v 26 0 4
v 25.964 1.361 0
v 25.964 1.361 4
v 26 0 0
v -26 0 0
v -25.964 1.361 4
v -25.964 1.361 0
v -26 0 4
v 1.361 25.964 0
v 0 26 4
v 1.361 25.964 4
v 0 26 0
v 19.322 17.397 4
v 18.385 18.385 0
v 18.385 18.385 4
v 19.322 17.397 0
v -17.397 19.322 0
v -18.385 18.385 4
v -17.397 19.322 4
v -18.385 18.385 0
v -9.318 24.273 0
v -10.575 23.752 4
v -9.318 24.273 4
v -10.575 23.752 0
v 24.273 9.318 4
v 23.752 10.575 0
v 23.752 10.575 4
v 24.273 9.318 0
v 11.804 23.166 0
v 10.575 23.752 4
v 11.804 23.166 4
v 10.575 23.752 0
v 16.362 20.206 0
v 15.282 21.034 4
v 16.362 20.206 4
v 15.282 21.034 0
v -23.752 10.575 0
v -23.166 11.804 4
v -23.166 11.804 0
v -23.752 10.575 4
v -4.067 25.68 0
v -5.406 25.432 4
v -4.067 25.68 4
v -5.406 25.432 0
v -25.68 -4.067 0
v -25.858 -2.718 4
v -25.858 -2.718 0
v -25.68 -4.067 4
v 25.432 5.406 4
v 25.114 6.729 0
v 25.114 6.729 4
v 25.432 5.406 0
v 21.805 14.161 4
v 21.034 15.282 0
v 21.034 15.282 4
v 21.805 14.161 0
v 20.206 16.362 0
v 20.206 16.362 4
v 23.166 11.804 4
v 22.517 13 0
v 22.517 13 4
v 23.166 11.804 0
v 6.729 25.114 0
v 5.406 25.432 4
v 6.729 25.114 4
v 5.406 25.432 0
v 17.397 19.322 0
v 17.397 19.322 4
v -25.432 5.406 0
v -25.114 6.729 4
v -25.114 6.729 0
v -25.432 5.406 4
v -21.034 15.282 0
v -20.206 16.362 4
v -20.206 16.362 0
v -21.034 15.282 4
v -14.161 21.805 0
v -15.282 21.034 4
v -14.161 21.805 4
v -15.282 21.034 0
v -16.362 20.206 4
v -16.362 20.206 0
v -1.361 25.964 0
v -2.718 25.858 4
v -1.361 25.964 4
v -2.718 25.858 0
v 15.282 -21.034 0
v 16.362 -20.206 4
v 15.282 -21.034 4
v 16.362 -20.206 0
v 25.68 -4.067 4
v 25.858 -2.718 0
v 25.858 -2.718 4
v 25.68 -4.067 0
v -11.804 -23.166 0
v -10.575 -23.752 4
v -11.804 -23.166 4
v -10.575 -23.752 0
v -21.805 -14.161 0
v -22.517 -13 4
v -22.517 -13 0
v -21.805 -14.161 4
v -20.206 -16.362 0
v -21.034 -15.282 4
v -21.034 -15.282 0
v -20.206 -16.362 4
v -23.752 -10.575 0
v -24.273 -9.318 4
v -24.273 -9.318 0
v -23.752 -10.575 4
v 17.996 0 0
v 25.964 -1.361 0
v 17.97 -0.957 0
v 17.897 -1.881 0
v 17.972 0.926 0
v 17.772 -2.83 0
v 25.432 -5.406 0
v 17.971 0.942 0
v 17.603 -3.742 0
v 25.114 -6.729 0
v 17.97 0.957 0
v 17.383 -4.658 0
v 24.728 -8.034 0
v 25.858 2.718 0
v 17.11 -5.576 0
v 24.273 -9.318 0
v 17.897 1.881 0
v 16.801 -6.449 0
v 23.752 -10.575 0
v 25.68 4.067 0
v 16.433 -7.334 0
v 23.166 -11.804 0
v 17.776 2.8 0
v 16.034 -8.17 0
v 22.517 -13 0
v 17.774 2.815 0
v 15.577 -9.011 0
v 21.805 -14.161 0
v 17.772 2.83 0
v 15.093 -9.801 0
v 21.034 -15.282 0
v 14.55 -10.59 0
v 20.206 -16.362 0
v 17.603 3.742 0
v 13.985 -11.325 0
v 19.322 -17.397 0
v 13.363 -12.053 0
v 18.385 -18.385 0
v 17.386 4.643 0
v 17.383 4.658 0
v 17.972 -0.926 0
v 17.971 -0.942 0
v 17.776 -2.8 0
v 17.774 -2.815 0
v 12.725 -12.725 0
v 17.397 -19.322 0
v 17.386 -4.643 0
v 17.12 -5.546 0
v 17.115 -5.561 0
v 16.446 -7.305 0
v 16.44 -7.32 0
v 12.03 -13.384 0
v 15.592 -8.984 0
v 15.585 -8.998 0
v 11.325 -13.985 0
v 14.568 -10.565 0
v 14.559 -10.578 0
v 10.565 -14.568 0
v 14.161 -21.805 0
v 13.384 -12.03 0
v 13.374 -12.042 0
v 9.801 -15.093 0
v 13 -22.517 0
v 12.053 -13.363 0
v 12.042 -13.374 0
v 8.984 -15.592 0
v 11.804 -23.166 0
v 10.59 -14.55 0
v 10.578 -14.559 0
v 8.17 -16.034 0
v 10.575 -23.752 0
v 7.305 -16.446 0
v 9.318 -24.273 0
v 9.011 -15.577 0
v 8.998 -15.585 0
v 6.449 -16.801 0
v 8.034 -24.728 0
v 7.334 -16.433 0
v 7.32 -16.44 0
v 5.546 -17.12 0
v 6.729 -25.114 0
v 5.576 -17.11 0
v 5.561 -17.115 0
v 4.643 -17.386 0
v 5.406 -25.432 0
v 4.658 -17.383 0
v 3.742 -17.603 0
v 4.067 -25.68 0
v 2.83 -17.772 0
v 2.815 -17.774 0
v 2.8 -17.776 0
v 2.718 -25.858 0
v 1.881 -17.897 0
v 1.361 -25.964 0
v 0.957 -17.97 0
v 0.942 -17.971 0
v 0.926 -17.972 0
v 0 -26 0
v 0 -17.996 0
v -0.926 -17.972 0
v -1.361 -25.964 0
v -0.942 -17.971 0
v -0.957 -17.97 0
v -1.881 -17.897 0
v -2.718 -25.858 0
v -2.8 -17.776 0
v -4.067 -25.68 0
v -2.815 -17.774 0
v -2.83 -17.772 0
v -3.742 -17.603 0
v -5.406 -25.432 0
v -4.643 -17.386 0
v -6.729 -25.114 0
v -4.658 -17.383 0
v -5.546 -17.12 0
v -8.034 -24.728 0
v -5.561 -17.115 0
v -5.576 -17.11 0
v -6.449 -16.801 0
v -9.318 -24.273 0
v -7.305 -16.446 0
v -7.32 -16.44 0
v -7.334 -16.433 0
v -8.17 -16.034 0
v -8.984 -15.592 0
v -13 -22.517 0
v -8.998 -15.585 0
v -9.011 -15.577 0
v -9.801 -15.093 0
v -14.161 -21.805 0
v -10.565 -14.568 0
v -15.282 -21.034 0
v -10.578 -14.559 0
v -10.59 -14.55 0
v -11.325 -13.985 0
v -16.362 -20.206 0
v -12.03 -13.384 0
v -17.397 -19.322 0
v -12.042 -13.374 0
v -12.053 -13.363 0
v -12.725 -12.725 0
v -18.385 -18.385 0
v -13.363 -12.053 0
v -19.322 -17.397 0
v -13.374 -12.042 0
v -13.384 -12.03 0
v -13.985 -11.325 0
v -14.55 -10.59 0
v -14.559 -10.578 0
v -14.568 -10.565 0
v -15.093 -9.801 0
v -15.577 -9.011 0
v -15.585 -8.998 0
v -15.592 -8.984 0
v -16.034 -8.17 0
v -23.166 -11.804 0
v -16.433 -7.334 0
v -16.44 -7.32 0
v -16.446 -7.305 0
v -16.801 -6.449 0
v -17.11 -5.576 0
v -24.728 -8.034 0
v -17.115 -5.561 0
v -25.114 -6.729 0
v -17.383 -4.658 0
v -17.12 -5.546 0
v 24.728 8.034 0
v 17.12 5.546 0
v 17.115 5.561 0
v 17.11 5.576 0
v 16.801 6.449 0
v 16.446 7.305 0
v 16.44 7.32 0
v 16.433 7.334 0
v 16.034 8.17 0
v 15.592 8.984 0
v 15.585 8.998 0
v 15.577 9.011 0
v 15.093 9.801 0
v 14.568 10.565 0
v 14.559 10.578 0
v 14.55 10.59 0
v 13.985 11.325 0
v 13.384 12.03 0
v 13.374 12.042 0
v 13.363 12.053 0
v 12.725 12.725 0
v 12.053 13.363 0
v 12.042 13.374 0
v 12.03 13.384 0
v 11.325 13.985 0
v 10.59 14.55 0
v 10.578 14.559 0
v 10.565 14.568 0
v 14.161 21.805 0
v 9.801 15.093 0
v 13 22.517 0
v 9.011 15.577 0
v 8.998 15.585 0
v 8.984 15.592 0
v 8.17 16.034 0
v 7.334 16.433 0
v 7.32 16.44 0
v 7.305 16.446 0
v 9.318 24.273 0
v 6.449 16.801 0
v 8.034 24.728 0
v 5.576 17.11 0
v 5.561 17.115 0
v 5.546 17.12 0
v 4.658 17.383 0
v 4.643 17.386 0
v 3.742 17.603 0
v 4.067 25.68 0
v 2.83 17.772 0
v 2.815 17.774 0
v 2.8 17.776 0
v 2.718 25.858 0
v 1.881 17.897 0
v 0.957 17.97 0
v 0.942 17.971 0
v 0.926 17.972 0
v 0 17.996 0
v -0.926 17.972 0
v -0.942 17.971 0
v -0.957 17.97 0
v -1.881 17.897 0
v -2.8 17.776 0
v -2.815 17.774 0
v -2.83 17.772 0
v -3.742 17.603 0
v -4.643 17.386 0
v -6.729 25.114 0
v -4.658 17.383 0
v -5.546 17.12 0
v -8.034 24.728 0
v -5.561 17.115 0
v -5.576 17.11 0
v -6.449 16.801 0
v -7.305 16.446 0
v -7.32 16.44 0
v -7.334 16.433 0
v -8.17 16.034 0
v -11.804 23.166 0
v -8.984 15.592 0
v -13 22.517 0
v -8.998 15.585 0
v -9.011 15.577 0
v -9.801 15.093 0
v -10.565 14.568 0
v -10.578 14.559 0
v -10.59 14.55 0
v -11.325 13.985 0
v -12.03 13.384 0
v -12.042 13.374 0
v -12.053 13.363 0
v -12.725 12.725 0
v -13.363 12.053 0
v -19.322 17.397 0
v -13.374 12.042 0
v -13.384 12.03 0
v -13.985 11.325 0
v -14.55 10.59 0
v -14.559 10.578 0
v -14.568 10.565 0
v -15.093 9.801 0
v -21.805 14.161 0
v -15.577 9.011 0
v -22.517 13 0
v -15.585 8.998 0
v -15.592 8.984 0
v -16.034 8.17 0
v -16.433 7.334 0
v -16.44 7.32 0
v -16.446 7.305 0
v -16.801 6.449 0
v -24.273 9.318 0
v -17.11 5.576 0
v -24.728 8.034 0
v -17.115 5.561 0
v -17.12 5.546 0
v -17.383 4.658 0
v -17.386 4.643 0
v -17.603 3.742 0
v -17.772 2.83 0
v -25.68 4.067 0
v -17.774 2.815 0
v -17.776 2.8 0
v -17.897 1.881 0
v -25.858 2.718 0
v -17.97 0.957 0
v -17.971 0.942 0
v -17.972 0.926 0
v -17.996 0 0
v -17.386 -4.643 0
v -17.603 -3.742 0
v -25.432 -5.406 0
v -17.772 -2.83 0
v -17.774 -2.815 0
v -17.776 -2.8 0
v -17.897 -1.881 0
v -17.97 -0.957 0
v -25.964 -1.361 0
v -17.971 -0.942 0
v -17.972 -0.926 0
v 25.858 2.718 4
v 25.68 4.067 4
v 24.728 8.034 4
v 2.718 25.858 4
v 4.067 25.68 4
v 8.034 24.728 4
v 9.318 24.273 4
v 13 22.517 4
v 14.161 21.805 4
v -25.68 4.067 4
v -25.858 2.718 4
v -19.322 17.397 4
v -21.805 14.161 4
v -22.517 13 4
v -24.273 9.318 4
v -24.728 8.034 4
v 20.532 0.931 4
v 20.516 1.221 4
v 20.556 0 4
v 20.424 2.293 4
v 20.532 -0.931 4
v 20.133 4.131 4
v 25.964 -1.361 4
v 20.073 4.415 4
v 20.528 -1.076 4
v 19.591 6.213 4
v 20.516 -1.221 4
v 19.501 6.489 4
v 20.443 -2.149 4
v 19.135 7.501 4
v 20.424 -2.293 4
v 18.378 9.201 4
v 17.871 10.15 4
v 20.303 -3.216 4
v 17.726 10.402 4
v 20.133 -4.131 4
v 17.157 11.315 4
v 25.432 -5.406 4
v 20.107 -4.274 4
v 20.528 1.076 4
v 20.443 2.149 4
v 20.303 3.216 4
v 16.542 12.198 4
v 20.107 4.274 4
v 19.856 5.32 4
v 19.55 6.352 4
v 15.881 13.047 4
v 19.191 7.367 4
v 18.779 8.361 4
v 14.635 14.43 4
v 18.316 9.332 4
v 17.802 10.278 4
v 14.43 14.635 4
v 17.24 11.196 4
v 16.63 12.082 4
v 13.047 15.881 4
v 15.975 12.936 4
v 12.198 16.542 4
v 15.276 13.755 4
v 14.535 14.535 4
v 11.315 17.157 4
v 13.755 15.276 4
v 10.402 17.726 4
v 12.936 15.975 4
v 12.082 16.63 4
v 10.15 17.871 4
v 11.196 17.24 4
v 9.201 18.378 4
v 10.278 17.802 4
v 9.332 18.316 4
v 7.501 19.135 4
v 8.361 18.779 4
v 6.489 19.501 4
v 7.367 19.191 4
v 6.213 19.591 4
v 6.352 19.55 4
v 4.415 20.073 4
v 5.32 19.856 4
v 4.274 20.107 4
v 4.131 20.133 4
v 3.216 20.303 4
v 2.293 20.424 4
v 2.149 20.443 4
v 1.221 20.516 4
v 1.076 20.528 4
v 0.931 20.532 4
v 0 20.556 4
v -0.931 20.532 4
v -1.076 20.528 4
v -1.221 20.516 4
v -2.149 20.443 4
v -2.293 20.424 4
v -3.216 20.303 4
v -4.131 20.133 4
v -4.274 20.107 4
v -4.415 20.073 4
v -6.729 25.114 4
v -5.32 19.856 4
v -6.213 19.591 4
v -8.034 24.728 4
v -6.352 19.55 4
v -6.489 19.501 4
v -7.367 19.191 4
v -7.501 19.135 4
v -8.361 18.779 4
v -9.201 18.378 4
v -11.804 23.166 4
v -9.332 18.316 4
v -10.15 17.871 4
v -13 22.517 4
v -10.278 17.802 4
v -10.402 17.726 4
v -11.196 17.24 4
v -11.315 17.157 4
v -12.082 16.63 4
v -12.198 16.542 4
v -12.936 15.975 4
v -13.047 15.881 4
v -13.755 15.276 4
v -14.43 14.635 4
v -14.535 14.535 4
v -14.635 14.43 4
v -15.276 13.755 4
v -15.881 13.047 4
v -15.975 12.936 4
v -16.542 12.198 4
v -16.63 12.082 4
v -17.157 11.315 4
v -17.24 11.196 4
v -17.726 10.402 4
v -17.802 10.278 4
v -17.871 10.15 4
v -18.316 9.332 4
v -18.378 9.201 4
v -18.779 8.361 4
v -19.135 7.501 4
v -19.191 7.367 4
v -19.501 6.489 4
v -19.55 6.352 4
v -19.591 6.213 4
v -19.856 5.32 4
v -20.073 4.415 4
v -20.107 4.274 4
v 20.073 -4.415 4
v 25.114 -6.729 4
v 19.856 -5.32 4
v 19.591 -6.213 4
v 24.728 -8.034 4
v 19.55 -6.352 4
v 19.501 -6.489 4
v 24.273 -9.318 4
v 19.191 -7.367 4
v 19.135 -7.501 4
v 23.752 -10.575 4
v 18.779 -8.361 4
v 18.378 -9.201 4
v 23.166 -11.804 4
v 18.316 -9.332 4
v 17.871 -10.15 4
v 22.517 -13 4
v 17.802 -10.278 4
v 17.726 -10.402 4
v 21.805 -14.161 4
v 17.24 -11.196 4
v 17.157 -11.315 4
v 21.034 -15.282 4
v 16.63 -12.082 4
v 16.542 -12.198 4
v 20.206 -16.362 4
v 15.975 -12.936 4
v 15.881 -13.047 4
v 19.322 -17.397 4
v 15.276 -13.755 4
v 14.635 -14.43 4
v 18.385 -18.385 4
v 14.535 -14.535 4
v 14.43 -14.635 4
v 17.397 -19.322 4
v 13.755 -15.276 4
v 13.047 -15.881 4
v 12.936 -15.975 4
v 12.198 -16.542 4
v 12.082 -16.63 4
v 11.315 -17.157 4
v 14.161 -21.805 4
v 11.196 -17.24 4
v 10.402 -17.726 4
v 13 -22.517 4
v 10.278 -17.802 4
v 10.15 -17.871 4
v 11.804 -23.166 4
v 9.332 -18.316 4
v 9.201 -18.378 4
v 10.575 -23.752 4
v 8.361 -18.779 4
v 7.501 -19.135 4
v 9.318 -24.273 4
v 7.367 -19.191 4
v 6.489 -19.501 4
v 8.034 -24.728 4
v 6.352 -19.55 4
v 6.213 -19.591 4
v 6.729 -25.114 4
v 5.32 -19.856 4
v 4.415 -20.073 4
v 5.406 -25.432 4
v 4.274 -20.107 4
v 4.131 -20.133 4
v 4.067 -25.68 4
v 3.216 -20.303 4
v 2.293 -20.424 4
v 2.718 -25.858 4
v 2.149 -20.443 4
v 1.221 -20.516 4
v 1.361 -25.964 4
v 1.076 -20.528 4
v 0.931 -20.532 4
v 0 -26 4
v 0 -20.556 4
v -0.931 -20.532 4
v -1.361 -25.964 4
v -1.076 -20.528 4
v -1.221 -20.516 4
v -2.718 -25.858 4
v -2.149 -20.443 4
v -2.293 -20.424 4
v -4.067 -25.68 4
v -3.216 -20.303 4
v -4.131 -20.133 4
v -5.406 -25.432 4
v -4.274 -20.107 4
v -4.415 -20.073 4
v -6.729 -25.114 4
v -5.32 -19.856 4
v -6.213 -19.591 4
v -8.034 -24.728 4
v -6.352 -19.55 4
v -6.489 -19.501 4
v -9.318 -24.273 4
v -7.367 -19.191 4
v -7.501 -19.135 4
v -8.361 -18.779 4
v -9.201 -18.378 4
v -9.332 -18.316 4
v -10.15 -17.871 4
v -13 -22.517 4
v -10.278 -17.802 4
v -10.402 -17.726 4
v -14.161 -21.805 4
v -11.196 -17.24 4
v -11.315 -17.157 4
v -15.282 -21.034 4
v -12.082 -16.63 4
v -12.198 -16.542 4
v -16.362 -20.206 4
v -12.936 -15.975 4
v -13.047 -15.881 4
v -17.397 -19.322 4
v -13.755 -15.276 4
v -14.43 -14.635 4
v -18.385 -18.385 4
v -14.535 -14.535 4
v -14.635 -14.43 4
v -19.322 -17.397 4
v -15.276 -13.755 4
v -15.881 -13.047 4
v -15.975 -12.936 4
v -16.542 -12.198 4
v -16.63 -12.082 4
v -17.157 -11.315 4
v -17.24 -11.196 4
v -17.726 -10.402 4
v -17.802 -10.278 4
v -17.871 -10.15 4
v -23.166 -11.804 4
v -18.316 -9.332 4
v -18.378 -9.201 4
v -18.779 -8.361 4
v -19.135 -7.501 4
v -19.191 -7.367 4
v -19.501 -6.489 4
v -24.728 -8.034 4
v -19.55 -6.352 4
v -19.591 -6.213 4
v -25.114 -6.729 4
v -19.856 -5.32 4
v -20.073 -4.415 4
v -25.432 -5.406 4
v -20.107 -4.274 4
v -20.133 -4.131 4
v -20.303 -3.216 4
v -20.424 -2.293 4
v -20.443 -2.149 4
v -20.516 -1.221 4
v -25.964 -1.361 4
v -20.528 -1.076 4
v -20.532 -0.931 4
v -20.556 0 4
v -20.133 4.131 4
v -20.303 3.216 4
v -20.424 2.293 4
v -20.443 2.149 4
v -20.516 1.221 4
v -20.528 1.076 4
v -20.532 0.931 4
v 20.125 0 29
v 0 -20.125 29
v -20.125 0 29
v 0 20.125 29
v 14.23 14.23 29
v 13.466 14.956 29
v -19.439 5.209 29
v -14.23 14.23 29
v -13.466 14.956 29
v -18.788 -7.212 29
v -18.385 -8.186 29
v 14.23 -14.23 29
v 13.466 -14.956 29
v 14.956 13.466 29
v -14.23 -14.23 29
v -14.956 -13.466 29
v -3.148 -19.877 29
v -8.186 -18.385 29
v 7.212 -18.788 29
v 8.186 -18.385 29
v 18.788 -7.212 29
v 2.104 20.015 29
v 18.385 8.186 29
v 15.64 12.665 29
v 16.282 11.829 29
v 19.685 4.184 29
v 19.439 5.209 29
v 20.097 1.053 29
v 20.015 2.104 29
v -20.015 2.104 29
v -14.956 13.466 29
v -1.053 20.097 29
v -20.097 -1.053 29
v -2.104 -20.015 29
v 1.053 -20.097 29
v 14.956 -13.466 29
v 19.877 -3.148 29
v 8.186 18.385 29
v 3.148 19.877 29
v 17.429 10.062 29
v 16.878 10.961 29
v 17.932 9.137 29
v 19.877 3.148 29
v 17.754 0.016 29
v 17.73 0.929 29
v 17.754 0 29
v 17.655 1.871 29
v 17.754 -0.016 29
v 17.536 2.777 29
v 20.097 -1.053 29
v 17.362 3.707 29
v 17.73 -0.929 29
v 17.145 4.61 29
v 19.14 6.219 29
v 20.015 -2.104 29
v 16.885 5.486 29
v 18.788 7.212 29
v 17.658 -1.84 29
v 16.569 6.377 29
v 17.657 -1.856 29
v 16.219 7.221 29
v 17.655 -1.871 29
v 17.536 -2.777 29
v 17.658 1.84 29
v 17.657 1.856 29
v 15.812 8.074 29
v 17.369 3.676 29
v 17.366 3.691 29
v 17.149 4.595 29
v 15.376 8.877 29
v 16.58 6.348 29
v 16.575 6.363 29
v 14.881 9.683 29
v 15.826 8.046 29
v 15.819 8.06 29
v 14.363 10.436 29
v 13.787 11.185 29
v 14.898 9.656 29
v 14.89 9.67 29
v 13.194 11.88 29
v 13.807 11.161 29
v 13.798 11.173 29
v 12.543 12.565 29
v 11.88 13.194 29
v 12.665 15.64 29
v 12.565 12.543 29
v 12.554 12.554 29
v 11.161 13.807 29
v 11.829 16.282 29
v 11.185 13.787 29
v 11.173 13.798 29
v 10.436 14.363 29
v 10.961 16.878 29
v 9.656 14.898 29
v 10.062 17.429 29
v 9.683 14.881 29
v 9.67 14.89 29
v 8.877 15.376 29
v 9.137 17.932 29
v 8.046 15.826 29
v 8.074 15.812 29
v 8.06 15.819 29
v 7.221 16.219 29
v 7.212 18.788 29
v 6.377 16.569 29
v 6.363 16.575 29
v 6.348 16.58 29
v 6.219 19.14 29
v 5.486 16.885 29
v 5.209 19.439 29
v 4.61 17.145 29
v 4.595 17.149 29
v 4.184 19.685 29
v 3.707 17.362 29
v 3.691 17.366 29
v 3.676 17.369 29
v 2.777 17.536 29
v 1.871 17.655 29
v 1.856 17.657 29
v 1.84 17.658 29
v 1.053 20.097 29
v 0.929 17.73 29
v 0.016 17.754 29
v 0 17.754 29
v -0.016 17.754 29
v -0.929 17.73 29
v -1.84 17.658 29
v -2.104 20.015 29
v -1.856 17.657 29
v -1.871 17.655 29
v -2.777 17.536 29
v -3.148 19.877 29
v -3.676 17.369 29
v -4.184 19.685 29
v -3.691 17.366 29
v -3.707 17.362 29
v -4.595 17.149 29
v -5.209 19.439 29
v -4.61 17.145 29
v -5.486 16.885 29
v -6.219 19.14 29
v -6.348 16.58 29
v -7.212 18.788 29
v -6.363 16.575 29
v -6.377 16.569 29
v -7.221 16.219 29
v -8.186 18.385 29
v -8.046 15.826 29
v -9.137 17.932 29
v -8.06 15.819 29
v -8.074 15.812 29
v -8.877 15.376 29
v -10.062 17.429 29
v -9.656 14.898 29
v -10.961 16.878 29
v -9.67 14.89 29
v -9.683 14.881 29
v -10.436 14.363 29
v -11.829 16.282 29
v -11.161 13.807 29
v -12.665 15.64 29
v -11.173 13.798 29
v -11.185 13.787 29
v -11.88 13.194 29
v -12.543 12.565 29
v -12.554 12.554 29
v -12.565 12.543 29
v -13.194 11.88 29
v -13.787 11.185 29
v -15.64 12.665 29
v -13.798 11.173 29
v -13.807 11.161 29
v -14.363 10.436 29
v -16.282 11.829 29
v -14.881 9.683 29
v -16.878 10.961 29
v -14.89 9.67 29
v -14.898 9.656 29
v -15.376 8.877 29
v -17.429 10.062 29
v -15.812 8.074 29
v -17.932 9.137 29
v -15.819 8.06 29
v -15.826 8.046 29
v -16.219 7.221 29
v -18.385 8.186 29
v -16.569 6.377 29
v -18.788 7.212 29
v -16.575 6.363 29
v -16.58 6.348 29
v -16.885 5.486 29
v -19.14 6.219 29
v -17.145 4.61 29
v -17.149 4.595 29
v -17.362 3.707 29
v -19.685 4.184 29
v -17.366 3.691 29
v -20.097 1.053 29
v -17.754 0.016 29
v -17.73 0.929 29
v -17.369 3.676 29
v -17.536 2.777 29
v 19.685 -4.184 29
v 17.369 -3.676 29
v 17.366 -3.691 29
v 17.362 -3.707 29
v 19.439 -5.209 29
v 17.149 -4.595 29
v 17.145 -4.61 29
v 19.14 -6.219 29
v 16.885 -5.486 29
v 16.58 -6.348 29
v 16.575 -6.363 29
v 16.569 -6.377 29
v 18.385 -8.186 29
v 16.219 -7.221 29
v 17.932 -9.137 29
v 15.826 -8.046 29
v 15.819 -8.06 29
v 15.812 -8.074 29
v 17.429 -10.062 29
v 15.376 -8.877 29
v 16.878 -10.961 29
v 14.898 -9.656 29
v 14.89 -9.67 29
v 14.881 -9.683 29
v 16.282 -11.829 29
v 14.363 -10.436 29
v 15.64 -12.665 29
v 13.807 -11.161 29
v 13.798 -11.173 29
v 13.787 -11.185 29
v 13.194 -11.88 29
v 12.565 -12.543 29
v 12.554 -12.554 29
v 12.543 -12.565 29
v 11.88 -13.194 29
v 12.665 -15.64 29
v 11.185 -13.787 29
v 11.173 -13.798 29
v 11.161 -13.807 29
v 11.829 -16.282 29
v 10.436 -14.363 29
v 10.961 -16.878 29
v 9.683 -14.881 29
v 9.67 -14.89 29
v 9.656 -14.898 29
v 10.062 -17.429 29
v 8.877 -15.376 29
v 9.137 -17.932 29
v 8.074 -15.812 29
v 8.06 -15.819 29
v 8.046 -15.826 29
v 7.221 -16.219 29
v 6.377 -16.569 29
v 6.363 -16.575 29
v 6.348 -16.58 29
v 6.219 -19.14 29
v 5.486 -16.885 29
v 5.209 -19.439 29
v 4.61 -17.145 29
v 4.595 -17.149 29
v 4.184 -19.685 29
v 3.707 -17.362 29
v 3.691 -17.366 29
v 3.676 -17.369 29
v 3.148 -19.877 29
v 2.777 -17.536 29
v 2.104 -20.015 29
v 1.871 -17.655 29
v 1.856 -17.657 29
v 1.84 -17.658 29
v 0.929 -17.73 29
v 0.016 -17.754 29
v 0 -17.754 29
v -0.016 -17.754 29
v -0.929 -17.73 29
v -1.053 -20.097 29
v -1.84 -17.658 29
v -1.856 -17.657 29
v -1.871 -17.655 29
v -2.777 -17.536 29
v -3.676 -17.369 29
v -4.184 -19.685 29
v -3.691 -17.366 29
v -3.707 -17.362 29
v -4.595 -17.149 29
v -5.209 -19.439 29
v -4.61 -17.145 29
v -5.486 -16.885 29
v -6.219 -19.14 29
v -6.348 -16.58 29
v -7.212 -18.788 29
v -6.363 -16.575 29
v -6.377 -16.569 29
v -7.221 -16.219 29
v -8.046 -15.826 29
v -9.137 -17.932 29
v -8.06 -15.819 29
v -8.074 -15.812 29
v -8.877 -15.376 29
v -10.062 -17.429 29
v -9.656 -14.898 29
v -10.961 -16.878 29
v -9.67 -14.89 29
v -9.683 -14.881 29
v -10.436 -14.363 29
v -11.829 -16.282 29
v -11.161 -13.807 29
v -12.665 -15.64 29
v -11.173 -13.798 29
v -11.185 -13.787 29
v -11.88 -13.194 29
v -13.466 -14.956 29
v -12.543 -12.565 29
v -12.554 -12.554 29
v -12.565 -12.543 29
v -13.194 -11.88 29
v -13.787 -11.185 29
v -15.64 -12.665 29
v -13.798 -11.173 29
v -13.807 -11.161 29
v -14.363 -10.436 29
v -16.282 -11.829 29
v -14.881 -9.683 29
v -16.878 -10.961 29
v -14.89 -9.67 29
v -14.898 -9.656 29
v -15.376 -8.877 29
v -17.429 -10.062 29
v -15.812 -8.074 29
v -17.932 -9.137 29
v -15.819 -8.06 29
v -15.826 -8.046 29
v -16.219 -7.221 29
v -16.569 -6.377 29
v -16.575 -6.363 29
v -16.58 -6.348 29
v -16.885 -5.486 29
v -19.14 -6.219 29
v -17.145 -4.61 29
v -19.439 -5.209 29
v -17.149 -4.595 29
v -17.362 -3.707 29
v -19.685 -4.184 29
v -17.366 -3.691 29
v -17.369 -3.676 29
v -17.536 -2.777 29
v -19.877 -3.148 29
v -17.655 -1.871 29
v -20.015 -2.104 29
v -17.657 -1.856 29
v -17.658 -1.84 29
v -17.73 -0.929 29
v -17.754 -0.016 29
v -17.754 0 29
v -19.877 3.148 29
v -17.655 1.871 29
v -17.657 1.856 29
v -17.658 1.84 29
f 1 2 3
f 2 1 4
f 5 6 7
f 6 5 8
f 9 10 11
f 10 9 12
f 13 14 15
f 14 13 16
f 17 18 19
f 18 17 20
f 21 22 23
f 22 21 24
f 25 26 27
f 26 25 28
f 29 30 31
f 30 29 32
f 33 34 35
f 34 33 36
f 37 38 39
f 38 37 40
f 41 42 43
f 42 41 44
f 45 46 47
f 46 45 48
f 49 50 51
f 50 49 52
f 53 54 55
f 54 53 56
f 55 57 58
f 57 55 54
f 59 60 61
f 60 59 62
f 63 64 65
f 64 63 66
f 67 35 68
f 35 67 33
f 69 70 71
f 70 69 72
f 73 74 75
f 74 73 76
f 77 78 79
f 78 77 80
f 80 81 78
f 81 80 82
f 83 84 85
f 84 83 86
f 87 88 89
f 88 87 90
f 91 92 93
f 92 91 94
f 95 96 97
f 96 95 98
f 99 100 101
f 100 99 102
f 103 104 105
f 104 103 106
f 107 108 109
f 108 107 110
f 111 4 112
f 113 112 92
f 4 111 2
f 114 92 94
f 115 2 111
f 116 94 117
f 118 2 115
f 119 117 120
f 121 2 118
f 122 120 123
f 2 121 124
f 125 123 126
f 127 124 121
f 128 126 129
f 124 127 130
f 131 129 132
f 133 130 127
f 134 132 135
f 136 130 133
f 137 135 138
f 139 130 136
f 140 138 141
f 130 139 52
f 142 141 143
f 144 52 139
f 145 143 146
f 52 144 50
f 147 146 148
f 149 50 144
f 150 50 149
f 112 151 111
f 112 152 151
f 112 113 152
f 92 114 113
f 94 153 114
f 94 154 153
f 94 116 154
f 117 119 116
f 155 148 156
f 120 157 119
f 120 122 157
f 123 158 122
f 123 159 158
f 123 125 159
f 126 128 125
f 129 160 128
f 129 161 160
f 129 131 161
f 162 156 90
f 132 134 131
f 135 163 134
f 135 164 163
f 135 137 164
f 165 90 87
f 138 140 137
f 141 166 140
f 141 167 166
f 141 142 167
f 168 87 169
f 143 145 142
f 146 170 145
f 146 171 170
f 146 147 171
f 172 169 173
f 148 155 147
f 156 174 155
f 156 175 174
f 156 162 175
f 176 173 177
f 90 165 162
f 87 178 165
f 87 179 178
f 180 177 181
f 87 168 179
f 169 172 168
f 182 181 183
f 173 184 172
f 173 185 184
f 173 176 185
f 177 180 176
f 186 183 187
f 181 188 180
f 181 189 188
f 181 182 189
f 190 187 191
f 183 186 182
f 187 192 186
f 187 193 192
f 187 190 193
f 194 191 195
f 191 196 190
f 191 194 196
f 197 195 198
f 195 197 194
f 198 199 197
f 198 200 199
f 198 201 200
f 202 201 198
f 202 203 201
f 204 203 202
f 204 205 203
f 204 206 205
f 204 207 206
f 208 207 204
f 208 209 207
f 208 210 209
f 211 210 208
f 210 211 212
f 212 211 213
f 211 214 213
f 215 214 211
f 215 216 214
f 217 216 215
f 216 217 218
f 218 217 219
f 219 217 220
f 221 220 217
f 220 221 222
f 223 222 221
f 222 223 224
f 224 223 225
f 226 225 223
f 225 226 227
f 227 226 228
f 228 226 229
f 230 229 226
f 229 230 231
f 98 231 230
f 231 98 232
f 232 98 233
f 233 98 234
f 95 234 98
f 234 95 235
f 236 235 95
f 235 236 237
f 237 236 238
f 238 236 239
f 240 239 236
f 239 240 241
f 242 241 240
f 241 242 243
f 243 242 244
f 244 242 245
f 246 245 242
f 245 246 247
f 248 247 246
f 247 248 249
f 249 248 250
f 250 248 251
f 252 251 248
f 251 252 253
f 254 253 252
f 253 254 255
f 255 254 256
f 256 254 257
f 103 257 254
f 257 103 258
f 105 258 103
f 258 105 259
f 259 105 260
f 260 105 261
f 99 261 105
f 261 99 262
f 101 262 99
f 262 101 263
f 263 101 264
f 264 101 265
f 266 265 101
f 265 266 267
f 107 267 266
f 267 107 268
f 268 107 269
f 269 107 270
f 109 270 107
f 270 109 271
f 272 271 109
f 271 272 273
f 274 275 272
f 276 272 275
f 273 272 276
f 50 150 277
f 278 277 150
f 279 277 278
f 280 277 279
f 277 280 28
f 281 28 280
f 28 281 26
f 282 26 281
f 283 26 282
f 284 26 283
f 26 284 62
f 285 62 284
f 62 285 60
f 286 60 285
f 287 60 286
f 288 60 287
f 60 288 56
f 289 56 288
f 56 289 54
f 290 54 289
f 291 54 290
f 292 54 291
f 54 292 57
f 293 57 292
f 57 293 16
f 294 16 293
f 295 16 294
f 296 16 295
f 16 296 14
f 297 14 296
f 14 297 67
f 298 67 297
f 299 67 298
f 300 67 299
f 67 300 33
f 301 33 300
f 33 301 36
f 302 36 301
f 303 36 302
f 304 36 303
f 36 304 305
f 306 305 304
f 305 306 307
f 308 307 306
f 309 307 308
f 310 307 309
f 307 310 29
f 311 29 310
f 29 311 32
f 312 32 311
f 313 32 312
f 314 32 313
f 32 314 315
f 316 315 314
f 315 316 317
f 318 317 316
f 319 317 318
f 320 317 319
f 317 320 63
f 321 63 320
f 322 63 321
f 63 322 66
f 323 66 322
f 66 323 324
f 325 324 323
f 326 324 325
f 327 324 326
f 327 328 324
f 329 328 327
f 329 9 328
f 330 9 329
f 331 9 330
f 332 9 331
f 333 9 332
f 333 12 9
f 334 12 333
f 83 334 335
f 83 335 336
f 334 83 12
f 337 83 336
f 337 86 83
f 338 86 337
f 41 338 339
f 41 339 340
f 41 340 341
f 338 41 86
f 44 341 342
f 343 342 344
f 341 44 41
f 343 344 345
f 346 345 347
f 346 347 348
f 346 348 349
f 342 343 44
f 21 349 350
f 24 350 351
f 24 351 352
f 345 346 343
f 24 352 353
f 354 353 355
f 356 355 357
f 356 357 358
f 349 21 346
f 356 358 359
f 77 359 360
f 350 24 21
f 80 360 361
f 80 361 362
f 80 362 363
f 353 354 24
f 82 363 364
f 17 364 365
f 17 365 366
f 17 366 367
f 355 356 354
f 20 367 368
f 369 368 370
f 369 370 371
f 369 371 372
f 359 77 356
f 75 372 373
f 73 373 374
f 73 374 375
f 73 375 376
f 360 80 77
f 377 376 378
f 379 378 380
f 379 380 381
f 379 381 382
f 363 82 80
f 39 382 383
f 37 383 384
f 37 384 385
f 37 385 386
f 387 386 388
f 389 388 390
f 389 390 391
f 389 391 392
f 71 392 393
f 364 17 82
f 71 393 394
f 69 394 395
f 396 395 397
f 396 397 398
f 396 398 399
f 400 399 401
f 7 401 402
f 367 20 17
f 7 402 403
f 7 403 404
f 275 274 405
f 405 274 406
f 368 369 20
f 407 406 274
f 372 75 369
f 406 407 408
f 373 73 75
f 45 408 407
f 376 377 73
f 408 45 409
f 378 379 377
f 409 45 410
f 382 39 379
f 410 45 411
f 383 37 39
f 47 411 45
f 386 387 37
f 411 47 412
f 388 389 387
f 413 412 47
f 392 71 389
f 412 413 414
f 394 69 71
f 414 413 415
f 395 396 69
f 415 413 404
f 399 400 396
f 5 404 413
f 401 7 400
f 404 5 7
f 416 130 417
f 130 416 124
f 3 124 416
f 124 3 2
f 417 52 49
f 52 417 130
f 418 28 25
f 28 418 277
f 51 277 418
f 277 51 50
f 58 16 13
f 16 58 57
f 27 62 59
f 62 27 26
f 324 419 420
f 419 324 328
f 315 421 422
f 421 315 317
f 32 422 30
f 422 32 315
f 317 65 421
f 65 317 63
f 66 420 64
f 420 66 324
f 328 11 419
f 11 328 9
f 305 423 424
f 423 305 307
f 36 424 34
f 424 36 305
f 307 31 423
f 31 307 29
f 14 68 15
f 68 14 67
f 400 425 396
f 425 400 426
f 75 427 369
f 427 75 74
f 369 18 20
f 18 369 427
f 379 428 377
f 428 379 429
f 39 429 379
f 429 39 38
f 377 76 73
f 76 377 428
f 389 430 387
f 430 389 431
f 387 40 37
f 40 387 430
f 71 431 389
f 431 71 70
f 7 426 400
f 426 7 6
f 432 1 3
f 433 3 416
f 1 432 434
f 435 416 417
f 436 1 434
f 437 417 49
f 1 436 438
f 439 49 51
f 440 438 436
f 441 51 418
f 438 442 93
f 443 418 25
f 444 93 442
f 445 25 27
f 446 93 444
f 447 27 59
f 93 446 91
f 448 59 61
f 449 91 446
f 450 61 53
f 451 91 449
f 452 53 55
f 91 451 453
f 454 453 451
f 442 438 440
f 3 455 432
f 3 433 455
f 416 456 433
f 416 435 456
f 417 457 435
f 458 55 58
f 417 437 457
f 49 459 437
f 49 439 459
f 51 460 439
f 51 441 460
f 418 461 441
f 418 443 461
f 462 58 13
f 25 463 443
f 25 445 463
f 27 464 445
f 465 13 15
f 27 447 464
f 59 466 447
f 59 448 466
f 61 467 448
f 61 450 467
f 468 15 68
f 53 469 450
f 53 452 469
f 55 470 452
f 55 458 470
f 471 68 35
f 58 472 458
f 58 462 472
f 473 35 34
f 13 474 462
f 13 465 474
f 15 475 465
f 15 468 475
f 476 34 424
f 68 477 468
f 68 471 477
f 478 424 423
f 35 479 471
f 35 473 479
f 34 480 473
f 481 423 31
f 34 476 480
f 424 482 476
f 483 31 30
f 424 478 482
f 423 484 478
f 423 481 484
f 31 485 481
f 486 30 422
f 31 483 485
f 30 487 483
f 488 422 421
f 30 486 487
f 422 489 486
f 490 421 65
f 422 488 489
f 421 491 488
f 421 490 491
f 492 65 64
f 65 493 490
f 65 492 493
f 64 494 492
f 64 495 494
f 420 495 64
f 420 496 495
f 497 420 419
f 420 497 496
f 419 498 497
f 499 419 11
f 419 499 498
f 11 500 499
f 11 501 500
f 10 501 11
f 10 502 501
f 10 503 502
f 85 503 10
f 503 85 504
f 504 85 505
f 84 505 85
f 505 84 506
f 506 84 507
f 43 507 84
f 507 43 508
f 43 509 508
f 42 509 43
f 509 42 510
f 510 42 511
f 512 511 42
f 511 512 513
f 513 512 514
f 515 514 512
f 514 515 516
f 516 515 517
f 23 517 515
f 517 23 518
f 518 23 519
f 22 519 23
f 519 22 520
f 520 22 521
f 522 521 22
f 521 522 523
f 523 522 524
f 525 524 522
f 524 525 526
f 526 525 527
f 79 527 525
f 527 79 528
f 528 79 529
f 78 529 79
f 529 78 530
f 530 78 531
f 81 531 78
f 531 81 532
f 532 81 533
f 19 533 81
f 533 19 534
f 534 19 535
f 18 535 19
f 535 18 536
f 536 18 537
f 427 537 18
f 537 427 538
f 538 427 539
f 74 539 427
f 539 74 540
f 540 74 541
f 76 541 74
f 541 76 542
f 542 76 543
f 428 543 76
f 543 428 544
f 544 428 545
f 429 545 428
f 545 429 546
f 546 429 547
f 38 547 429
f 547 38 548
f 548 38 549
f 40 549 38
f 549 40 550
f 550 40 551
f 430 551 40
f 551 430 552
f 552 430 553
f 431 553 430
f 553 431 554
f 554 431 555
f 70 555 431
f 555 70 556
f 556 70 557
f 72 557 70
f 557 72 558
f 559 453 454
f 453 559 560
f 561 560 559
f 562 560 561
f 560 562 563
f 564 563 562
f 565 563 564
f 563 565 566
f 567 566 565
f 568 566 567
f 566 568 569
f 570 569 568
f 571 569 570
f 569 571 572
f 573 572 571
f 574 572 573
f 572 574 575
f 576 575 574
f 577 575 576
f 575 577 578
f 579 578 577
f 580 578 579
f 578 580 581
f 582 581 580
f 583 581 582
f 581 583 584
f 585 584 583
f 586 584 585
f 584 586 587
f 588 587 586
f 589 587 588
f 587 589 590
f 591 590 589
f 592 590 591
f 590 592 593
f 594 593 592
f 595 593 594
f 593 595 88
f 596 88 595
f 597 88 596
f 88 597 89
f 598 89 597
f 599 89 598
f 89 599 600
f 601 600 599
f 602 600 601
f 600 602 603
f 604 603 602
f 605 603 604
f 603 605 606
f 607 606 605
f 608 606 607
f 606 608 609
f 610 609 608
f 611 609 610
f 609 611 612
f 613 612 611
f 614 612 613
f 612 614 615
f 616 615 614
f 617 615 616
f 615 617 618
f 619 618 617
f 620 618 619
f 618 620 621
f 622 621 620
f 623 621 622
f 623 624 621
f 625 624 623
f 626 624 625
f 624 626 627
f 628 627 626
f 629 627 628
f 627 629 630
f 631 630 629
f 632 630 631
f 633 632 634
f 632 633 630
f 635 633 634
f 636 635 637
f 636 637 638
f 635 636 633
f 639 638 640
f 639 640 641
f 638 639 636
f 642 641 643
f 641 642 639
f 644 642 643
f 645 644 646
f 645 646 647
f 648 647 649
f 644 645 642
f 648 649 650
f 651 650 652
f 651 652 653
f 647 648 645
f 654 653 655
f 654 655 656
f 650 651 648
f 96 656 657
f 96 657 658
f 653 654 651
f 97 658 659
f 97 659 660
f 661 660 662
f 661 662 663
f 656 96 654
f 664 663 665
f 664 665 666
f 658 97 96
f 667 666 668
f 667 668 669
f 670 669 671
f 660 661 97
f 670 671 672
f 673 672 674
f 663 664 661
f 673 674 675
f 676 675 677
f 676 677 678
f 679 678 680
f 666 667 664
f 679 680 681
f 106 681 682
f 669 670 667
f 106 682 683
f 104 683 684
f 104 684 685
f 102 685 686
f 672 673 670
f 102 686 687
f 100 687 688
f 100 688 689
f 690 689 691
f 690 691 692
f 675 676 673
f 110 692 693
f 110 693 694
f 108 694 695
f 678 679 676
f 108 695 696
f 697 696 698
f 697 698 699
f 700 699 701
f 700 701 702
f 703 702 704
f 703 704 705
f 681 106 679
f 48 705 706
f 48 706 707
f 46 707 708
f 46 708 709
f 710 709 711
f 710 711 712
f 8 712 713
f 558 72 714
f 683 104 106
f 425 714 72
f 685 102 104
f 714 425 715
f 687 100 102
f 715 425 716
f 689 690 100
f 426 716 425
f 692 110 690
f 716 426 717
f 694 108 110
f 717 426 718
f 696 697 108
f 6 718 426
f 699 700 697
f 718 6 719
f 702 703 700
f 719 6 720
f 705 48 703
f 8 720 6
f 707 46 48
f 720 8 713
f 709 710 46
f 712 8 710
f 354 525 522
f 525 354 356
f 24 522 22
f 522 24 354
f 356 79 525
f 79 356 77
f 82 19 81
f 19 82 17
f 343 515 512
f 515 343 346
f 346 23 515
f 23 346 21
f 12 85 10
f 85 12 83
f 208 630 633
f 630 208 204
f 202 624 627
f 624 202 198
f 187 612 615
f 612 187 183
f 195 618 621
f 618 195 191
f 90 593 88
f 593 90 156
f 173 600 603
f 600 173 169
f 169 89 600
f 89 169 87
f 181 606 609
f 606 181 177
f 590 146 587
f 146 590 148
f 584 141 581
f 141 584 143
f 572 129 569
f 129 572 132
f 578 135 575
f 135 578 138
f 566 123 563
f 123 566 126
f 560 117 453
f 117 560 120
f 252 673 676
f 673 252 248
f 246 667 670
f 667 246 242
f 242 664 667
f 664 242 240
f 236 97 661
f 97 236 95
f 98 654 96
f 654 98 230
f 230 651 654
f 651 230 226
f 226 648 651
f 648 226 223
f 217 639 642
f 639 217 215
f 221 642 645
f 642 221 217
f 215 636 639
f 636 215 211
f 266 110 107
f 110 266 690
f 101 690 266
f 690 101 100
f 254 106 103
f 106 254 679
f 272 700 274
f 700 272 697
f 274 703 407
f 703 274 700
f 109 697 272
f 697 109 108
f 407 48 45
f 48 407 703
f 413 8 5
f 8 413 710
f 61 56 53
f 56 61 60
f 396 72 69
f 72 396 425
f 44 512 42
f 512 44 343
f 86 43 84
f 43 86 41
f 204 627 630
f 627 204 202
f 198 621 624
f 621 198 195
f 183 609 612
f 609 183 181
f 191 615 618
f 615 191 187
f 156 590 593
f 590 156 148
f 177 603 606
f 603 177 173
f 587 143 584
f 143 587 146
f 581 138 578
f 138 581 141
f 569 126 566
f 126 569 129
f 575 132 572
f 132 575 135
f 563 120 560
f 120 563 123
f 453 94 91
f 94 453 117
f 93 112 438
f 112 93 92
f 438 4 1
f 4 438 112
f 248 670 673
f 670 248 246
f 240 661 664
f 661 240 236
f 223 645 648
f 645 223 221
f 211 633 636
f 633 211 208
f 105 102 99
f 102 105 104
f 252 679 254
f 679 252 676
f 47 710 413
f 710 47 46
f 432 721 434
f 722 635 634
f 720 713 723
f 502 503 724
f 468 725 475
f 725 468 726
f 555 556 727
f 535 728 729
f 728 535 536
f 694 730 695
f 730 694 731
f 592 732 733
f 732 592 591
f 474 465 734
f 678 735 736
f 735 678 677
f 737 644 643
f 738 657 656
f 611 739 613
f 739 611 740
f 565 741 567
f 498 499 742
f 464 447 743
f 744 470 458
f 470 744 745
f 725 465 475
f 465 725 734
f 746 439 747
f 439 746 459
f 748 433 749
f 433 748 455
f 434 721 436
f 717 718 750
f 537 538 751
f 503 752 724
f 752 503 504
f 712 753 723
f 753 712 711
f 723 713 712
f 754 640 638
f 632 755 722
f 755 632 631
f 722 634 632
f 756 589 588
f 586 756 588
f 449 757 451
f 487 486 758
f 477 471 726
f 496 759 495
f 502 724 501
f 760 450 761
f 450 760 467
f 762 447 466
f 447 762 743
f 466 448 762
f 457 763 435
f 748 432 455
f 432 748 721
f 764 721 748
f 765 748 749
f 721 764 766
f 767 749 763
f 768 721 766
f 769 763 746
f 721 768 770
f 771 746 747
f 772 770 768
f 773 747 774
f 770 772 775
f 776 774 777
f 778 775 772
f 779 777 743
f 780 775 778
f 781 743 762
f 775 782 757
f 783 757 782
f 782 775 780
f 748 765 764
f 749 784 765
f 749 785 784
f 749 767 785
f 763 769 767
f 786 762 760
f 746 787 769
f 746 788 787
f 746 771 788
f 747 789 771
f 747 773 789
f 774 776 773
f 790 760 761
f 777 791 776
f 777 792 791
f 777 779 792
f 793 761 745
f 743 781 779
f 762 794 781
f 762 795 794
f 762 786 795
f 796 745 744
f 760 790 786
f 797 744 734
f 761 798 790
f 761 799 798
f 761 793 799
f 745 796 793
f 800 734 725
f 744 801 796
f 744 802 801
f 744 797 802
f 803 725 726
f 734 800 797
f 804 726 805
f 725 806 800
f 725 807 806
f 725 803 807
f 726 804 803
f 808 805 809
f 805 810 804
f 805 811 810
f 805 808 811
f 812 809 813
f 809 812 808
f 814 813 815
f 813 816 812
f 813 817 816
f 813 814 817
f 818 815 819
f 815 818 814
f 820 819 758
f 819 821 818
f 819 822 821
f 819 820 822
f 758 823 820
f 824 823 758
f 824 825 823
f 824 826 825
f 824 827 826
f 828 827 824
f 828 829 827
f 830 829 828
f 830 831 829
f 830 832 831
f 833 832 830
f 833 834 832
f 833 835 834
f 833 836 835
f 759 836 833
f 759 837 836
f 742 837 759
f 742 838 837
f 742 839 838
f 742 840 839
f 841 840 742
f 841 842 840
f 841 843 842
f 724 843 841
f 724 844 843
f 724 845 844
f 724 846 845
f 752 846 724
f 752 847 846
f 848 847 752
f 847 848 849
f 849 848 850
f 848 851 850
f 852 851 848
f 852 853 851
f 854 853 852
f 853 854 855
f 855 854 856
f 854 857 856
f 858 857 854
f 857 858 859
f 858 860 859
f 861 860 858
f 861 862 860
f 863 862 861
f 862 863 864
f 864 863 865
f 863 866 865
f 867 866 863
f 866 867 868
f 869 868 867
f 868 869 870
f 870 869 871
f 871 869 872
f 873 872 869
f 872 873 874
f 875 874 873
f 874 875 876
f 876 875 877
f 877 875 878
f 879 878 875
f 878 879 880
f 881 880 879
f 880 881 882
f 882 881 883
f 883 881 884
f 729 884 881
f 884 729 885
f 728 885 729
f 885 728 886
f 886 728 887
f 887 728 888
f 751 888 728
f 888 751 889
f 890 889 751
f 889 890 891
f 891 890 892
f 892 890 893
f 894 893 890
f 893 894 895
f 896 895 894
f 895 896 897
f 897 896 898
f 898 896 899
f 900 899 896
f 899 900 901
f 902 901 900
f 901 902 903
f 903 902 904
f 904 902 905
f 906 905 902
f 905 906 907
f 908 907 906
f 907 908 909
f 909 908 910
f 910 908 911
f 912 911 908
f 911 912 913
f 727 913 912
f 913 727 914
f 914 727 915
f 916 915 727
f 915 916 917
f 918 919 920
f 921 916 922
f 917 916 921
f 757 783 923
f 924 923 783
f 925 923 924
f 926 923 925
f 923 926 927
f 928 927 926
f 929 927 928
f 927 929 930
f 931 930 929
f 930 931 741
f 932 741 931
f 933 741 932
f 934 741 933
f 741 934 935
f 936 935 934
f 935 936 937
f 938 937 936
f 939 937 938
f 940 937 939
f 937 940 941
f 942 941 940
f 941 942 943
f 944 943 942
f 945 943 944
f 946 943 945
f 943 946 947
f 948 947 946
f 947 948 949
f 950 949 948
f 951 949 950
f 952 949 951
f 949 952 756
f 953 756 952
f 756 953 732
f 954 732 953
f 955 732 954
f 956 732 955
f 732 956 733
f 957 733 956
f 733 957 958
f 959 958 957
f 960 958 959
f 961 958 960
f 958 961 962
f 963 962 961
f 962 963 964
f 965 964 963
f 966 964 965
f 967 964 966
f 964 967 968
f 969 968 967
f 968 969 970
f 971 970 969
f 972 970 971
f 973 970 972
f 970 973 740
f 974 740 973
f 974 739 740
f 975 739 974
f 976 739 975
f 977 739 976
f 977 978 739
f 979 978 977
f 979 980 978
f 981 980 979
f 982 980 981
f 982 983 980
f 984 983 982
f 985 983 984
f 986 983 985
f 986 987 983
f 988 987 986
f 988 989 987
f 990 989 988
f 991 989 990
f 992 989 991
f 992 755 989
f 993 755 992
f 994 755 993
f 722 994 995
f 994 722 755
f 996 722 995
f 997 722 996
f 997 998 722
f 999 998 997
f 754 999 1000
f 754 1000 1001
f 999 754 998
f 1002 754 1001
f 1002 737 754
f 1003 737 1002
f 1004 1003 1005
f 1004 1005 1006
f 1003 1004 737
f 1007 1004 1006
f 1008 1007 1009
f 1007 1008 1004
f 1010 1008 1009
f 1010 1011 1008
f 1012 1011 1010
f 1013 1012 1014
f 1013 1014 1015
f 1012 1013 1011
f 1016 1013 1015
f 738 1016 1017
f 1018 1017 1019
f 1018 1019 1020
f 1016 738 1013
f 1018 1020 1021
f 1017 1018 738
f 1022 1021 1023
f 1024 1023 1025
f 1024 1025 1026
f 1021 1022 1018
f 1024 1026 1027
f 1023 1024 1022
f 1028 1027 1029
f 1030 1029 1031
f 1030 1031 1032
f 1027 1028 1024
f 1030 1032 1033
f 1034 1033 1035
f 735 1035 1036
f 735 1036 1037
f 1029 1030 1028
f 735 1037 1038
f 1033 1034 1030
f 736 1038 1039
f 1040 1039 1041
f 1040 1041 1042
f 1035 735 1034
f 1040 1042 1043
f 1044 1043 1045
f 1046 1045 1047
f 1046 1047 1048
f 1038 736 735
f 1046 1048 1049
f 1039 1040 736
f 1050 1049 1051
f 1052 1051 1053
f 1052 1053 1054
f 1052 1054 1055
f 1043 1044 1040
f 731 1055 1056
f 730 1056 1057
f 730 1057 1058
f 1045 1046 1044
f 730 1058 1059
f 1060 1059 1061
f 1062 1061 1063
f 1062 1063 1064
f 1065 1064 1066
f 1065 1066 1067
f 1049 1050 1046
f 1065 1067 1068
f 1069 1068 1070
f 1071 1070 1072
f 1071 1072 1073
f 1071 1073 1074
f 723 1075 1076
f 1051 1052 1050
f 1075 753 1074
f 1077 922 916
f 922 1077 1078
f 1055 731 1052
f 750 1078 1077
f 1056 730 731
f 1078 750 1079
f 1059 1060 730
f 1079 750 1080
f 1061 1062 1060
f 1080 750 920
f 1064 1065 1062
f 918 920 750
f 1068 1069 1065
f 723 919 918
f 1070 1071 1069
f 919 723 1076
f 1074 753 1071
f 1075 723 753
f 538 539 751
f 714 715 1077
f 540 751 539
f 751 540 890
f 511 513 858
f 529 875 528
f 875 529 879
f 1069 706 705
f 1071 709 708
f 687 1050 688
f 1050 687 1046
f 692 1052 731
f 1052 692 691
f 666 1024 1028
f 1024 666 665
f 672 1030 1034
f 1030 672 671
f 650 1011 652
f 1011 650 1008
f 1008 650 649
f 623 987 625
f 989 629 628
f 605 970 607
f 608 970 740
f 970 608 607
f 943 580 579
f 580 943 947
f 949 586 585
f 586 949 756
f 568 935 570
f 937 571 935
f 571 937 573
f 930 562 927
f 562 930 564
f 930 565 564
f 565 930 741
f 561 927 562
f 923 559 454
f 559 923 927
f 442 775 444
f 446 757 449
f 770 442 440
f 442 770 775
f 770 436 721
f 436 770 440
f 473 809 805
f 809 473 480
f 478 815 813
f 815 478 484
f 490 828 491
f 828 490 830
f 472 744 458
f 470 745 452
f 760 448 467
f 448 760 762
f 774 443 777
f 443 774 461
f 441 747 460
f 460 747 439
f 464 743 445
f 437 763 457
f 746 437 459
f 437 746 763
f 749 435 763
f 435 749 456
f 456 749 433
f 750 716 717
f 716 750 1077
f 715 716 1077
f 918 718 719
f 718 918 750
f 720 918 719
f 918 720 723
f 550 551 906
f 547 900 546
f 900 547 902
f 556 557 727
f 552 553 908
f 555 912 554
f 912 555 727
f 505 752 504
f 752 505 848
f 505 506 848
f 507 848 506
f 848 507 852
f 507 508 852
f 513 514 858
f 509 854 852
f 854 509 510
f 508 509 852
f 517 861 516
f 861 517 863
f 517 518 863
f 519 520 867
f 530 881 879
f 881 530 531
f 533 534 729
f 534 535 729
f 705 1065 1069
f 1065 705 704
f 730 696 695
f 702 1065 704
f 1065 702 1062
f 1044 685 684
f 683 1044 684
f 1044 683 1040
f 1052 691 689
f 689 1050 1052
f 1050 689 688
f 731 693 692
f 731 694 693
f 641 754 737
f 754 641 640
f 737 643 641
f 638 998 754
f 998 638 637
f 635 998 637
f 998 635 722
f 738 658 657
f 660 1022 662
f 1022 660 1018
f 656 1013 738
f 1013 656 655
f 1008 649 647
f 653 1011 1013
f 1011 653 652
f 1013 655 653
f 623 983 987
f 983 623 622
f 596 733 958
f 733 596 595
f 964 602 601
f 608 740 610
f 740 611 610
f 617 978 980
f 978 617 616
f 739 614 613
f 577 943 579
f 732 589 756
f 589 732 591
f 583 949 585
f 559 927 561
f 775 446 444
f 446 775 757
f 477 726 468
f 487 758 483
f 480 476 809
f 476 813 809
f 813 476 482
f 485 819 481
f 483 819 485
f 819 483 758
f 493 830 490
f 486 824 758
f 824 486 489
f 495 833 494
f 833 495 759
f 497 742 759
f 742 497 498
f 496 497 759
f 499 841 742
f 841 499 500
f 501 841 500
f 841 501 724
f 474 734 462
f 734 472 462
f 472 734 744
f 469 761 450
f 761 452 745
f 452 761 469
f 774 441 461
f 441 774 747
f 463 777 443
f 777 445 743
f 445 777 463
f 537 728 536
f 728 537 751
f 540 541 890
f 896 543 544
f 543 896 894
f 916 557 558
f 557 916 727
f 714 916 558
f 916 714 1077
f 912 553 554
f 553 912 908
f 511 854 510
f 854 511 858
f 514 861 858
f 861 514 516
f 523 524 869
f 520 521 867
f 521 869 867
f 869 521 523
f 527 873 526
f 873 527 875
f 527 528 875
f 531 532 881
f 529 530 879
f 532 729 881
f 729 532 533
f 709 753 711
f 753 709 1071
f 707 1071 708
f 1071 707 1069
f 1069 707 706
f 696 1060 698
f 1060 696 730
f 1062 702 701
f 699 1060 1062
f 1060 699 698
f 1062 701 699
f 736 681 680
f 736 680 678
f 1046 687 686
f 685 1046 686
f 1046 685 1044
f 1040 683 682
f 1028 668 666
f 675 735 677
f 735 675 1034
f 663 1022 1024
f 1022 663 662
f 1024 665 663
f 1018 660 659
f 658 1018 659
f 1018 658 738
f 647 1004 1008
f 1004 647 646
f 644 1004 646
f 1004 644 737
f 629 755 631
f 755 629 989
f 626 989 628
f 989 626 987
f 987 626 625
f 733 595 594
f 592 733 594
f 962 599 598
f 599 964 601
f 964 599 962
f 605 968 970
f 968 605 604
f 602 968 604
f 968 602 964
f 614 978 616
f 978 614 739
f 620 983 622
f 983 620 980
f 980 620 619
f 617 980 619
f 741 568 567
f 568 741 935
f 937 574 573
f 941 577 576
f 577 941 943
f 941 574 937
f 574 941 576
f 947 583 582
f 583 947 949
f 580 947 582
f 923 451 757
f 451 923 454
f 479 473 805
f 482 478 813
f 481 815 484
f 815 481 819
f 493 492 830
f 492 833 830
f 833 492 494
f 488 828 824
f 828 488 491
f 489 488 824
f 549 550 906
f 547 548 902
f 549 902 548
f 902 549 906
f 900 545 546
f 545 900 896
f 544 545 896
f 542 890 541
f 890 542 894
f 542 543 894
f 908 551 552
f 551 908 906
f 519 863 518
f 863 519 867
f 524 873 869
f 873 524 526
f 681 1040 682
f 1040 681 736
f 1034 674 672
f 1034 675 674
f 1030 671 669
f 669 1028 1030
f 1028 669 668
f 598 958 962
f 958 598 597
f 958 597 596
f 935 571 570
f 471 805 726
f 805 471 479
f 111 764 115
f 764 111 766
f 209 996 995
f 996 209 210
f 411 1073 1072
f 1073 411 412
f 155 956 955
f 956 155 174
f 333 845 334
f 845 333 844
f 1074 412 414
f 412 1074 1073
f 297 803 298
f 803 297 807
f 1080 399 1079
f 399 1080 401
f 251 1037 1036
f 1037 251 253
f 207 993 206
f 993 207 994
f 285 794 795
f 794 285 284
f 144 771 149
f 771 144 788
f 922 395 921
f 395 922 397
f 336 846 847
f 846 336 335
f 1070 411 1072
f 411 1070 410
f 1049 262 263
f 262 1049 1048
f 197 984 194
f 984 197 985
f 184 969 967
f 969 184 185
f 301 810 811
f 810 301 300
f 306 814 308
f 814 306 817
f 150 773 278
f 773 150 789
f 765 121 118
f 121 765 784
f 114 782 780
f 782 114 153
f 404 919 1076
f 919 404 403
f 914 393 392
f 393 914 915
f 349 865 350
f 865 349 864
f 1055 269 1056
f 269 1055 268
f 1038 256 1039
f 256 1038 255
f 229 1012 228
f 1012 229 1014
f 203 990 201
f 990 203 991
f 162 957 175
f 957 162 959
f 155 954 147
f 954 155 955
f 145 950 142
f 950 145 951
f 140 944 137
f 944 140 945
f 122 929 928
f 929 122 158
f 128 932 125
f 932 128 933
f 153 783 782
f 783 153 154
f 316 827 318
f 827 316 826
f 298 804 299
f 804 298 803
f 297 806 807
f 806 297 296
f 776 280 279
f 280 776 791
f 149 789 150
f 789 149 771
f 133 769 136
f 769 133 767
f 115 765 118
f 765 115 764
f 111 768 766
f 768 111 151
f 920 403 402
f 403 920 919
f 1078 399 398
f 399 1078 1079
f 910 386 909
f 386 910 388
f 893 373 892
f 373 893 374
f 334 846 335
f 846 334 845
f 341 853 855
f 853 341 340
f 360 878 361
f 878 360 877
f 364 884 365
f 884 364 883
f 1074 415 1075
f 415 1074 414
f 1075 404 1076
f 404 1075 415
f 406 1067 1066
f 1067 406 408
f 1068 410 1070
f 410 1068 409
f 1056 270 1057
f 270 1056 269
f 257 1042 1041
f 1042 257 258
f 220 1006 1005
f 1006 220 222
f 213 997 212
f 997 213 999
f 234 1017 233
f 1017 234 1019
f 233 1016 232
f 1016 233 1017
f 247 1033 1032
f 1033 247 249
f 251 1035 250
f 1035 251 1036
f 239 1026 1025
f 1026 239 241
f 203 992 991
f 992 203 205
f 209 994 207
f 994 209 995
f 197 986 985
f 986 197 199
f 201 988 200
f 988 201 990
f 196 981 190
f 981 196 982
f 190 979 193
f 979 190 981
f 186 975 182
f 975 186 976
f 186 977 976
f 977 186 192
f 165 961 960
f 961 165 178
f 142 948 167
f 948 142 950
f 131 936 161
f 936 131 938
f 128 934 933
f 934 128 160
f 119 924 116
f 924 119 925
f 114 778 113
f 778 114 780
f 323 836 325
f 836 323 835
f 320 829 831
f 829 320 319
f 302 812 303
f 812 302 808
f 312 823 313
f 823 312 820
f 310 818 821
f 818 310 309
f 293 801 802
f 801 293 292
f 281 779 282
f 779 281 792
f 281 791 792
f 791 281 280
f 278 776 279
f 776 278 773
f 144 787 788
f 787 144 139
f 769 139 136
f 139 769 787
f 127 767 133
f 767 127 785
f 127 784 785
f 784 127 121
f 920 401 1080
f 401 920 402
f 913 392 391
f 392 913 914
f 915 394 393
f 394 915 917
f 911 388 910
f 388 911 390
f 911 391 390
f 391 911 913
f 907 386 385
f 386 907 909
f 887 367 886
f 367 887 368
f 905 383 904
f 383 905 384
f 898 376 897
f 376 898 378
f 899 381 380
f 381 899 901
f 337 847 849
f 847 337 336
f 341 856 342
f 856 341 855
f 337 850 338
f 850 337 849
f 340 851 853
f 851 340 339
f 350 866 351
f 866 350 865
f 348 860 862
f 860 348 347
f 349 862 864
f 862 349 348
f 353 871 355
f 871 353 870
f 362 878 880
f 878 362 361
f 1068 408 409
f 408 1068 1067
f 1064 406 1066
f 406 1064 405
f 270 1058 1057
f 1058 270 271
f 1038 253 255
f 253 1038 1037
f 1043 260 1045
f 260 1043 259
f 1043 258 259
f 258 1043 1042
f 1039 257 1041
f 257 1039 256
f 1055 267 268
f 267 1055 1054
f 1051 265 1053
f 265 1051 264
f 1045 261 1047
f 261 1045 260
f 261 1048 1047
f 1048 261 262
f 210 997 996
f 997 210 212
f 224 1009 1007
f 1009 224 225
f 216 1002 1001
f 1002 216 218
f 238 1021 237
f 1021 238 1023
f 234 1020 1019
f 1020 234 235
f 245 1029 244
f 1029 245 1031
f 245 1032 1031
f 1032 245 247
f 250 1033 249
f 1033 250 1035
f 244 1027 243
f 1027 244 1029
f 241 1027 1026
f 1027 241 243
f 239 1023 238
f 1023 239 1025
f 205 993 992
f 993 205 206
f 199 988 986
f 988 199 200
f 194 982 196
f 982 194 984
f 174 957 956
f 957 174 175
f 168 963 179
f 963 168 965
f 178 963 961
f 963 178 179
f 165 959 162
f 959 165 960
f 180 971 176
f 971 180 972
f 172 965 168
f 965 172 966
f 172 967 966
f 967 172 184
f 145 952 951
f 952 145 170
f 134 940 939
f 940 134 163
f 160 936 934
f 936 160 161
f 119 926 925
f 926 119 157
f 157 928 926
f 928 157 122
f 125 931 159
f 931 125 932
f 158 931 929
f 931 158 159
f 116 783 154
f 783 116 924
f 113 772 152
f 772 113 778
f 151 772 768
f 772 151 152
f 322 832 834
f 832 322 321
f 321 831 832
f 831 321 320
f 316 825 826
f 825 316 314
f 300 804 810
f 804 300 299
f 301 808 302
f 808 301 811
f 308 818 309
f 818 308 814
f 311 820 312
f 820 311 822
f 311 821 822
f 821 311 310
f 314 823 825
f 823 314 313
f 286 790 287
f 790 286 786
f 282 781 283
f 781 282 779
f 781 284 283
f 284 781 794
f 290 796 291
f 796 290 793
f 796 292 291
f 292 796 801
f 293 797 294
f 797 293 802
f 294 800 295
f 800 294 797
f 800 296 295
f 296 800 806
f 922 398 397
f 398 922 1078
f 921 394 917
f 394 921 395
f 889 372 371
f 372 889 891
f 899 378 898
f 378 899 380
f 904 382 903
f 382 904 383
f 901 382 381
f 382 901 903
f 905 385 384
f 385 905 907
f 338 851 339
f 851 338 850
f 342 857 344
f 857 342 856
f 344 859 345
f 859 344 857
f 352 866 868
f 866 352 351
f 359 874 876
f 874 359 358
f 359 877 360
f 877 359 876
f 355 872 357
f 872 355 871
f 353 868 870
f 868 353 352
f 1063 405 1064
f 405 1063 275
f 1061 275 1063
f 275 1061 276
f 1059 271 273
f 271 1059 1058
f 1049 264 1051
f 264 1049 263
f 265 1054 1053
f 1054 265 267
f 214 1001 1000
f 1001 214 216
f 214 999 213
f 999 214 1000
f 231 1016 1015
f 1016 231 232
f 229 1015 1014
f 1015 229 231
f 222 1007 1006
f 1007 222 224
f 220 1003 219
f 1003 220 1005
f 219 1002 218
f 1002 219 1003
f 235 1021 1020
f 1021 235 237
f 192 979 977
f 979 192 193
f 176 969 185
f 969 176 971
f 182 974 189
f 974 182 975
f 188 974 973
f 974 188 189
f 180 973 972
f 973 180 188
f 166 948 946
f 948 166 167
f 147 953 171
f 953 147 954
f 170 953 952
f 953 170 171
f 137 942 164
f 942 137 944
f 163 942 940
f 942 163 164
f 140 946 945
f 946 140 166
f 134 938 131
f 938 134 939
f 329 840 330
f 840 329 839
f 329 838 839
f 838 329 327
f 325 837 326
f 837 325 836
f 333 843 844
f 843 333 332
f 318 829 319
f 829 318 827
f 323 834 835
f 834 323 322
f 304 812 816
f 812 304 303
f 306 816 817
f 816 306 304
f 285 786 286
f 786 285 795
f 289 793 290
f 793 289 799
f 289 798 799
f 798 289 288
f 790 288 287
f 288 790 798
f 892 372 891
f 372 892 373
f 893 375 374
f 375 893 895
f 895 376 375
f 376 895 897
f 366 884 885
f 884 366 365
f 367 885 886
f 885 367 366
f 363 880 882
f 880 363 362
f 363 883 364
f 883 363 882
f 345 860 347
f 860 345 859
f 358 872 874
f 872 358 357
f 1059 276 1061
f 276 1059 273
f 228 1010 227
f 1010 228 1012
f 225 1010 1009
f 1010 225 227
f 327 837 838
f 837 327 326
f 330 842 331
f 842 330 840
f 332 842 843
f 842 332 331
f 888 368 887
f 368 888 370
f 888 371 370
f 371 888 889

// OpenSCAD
$fn=120;

difference() {
   union() {
      cylinder(d=52,h=4);
      cylinder(d1=41.25,d2=40.25,h=29);
   }
   translate([0,0,-0.5]) cylinder(d1=36, d2=35.5, h=30);
}
